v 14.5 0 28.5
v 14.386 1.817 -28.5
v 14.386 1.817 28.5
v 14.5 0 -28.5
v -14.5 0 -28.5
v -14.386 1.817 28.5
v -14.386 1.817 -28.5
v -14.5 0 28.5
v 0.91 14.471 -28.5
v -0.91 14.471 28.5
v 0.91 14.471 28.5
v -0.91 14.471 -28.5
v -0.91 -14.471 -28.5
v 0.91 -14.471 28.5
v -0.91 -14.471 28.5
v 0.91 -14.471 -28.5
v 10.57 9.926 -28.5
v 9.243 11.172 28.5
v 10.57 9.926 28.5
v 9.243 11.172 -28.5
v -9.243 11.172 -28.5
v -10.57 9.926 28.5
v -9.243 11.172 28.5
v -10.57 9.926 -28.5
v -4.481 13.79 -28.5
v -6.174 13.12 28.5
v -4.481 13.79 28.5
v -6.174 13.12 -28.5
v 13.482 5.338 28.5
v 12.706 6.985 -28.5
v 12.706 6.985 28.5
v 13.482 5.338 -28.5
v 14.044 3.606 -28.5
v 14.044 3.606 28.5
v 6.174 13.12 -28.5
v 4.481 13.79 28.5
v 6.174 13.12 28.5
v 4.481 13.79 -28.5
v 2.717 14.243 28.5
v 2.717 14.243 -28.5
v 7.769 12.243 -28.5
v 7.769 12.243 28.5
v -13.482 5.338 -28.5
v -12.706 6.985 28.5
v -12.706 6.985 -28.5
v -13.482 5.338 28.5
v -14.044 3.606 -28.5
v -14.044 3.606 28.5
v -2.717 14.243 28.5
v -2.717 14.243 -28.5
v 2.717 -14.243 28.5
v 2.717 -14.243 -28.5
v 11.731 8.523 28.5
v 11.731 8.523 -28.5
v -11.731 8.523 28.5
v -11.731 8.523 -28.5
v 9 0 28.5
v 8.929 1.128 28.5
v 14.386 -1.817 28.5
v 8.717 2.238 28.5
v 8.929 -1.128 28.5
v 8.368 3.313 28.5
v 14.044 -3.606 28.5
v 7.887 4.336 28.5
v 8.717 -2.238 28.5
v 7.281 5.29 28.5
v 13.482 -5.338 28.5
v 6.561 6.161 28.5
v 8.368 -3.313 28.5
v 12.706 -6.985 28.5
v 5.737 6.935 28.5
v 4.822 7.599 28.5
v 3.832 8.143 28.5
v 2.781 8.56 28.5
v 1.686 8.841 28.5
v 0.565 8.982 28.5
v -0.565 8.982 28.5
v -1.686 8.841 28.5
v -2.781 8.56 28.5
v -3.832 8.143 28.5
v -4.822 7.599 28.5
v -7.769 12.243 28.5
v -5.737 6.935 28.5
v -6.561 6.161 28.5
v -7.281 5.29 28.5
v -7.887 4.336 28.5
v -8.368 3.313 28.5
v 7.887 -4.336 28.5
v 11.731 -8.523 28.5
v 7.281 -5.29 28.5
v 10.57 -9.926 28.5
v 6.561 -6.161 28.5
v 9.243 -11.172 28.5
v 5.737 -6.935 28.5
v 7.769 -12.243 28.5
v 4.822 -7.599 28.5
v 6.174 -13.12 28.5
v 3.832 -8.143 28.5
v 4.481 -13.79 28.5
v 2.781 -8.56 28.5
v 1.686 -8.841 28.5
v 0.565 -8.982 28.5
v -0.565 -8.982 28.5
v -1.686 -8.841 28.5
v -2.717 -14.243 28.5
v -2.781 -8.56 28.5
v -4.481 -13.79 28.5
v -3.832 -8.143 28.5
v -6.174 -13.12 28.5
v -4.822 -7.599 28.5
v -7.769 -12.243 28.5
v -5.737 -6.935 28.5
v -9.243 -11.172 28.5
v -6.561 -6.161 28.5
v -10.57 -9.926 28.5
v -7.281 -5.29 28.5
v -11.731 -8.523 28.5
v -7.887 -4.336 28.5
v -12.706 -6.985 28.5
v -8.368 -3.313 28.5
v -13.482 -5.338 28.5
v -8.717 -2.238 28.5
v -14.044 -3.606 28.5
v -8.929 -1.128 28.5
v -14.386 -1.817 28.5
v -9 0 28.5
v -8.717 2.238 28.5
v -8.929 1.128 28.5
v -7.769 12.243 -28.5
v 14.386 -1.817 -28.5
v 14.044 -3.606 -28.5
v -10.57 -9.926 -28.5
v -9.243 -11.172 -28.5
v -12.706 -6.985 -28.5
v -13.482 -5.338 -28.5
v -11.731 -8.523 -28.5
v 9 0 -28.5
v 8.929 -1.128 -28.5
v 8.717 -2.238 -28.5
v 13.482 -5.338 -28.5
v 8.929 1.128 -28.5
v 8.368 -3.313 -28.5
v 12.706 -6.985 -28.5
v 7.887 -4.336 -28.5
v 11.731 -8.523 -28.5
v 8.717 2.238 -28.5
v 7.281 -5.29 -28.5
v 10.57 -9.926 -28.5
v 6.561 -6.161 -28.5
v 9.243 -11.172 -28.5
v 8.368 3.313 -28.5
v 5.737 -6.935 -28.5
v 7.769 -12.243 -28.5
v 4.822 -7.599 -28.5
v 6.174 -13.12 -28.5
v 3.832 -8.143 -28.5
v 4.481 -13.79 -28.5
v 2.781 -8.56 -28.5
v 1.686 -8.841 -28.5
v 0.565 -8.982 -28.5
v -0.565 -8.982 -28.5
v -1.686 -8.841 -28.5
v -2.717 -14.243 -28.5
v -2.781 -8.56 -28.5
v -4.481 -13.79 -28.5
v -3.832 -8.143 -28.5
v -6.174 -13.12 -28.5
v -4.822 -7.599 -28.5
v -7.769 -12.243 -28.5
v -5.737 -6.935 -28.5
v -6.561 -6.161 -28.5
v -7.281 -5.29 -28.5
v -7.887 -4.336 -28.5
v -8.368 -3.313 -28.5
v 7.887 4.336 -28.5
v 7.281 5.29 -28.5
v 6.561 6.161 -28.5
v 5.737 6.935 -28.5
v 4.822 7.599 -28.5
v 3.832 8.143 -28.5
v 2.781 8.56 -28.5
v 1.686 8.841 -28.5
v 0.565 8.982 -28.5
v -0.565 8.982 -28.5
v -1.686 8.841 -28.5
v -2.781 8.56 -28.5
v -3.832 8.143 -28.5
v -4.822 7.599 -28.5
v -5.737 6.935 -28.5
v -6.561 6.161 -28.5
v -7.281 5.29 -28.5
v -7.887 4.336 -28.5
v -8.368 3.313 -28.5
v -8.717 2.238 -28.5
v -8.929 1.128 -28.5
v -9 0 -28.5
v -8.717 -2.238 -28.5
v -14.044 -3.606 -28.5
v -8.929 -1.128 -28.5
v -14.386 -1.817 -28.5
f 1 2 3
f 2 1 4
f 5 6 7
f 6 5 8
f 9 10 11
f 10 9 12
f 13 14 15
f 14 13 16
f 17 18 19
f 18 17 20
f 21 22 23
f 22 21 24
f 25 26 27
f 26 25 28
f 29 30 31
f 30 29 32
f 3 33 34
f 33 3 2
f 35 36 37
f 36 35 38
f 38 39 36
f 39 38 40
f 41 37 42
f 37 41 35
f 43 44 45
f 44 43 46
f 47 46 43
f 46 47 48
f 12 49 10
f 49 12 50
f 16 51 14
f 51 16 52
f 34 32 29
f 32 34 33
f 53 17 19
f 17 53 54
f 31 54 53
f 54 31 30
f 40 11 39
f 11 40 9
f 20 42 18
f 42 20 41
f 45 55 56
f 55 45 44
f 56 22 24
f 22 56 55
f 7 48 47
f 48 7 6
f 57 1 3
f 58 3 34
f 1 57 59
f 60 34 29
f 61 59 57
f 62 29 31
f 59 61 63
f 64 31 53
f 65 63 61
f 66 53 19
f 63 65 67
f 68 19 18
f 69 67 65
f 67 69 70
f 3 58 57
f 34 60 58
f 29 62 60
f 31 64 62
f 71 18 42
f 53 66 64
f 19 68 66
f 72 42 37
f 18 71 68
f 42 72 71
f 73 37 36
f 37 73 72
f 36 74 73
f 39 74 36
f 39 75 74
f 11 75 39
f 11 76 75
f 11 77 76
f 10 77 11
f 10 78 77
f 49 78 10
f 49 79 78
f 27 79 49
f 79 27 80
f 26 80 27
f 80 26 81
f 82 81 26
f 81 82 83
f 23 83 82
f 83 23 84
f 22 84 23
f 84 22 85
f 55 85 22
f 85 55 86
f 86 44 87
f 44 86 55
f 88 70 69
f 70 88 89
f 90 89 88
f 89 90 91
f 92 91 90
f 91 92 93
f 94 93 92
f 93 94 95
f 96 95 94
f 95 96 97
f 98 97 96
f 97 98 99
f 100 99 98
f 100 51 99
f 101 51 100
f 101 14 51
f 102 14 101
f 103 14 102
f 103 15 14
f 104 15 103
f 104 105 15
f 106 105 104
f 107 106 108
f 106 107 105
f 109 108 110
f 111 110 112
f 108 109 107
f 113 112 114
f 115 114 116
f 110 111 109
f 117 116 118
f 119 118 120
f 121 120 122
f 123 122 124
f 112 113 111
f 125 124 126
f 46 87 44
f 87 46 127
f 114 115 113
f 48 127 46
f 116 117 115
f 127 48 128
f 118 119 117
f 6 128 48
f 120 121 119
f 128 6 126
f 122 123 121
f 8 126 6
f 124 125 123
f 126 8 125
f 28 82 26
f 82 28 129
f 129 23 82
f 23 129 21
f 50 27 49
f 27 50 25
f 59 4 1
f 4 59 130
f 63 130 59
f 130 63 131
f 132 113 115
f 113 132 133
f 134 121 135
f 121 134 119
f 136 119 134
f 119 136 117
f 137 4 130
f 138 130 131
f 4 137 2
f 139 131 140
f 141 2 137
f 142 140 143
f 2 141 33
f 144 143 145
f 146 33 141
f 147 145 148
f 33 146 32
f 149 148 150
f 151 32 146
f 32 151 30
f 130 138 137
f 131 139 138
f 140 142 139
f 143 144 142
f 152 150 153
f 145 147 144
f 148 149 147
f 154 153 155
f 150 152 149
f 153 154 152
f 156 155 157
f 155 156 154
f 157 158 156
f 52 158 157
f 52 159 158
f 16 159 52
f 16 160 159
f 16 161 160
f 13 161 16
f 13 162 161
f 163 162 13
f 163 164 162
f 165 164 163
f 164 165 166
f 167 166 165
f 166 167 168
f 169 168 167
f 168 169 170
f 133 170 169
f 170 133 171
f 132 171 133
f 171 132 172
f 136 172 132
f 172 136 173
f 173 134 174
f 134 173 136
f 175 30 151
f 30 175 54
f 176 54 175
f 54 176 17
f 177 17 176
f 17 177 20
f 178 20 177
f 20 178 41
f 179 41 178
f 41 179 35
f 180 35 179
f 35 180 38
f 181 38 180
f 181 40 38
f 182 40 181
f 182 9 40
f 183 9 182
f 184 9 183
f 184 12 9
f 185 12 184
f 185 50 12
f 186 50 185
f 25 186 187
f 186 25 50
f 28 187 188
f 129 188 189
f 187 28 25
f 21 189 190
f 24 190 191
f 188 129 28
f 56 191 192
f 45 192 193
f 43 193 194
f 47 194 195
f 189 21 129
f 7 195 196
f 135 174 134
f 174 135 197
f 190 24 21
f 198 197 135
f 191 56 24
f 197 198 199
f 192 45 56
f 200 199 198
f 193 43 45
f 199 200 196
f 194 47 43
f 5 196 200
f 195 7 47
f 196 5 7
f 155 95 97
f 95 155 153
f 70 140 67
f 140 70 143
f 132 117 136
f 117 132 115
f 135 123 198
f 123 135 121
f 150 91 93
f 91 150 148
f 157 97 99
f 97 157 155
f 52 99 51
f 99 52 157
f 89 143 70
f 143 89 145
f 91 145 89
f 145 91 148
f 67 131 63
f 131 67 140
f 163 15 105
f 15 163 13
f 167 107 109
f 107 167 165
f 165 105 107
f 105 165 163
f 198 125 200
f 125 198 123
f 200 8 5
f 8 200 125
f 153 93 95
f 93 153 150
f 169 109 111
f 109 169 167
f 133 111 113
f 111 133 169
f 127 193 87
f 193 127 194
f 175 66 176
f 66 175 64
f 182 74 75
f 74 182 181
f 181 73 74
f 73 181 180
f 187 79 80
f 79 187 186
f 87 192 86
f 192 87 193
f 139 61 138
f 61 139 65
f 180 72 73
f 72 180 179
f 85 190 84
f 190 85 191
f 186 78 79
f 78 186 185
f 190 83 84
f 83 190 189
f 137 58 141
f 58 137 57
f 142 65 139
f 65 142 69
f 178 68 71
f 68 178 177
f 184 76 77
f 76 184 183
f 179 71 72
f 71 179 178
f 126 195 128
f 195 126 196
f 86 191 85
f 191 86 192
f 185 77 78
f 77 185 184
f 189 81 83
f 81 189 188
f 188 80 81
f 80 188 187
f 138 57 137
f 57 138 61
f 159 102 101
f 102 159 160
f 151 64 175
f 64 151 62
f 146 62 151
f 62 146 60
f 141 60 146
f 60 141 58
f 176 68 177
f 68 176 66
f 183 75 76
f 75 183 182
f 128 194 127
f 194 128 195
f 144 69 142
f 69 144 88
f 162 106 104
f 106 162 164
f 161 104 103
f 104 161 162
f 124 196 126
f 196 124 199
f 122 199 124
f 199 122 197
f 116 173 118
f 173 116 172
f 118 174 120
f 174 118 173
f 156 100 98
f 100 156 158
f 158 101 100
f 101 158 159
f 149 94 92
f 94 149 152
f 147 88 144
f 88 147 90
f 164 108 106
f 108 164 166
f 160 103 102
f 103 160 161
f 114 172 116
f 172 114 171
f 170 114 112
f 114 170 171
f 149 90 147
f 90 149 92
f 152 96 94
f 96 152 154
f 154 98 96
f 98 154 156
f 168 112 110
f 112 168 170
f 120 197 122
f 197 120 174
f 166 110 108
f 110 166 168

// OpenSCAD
$fn = 50;


difference() {
	union() {
		translate(v = [0, 0, -28.5000000000]) {
			cylinder(h = 57, r = 14.5000000000);
		}
	}
	union() {
		translate(v = [0, 0, -100.0000000000]) {
			cylinder(h = 200, r = 9);
		}
	}
}
